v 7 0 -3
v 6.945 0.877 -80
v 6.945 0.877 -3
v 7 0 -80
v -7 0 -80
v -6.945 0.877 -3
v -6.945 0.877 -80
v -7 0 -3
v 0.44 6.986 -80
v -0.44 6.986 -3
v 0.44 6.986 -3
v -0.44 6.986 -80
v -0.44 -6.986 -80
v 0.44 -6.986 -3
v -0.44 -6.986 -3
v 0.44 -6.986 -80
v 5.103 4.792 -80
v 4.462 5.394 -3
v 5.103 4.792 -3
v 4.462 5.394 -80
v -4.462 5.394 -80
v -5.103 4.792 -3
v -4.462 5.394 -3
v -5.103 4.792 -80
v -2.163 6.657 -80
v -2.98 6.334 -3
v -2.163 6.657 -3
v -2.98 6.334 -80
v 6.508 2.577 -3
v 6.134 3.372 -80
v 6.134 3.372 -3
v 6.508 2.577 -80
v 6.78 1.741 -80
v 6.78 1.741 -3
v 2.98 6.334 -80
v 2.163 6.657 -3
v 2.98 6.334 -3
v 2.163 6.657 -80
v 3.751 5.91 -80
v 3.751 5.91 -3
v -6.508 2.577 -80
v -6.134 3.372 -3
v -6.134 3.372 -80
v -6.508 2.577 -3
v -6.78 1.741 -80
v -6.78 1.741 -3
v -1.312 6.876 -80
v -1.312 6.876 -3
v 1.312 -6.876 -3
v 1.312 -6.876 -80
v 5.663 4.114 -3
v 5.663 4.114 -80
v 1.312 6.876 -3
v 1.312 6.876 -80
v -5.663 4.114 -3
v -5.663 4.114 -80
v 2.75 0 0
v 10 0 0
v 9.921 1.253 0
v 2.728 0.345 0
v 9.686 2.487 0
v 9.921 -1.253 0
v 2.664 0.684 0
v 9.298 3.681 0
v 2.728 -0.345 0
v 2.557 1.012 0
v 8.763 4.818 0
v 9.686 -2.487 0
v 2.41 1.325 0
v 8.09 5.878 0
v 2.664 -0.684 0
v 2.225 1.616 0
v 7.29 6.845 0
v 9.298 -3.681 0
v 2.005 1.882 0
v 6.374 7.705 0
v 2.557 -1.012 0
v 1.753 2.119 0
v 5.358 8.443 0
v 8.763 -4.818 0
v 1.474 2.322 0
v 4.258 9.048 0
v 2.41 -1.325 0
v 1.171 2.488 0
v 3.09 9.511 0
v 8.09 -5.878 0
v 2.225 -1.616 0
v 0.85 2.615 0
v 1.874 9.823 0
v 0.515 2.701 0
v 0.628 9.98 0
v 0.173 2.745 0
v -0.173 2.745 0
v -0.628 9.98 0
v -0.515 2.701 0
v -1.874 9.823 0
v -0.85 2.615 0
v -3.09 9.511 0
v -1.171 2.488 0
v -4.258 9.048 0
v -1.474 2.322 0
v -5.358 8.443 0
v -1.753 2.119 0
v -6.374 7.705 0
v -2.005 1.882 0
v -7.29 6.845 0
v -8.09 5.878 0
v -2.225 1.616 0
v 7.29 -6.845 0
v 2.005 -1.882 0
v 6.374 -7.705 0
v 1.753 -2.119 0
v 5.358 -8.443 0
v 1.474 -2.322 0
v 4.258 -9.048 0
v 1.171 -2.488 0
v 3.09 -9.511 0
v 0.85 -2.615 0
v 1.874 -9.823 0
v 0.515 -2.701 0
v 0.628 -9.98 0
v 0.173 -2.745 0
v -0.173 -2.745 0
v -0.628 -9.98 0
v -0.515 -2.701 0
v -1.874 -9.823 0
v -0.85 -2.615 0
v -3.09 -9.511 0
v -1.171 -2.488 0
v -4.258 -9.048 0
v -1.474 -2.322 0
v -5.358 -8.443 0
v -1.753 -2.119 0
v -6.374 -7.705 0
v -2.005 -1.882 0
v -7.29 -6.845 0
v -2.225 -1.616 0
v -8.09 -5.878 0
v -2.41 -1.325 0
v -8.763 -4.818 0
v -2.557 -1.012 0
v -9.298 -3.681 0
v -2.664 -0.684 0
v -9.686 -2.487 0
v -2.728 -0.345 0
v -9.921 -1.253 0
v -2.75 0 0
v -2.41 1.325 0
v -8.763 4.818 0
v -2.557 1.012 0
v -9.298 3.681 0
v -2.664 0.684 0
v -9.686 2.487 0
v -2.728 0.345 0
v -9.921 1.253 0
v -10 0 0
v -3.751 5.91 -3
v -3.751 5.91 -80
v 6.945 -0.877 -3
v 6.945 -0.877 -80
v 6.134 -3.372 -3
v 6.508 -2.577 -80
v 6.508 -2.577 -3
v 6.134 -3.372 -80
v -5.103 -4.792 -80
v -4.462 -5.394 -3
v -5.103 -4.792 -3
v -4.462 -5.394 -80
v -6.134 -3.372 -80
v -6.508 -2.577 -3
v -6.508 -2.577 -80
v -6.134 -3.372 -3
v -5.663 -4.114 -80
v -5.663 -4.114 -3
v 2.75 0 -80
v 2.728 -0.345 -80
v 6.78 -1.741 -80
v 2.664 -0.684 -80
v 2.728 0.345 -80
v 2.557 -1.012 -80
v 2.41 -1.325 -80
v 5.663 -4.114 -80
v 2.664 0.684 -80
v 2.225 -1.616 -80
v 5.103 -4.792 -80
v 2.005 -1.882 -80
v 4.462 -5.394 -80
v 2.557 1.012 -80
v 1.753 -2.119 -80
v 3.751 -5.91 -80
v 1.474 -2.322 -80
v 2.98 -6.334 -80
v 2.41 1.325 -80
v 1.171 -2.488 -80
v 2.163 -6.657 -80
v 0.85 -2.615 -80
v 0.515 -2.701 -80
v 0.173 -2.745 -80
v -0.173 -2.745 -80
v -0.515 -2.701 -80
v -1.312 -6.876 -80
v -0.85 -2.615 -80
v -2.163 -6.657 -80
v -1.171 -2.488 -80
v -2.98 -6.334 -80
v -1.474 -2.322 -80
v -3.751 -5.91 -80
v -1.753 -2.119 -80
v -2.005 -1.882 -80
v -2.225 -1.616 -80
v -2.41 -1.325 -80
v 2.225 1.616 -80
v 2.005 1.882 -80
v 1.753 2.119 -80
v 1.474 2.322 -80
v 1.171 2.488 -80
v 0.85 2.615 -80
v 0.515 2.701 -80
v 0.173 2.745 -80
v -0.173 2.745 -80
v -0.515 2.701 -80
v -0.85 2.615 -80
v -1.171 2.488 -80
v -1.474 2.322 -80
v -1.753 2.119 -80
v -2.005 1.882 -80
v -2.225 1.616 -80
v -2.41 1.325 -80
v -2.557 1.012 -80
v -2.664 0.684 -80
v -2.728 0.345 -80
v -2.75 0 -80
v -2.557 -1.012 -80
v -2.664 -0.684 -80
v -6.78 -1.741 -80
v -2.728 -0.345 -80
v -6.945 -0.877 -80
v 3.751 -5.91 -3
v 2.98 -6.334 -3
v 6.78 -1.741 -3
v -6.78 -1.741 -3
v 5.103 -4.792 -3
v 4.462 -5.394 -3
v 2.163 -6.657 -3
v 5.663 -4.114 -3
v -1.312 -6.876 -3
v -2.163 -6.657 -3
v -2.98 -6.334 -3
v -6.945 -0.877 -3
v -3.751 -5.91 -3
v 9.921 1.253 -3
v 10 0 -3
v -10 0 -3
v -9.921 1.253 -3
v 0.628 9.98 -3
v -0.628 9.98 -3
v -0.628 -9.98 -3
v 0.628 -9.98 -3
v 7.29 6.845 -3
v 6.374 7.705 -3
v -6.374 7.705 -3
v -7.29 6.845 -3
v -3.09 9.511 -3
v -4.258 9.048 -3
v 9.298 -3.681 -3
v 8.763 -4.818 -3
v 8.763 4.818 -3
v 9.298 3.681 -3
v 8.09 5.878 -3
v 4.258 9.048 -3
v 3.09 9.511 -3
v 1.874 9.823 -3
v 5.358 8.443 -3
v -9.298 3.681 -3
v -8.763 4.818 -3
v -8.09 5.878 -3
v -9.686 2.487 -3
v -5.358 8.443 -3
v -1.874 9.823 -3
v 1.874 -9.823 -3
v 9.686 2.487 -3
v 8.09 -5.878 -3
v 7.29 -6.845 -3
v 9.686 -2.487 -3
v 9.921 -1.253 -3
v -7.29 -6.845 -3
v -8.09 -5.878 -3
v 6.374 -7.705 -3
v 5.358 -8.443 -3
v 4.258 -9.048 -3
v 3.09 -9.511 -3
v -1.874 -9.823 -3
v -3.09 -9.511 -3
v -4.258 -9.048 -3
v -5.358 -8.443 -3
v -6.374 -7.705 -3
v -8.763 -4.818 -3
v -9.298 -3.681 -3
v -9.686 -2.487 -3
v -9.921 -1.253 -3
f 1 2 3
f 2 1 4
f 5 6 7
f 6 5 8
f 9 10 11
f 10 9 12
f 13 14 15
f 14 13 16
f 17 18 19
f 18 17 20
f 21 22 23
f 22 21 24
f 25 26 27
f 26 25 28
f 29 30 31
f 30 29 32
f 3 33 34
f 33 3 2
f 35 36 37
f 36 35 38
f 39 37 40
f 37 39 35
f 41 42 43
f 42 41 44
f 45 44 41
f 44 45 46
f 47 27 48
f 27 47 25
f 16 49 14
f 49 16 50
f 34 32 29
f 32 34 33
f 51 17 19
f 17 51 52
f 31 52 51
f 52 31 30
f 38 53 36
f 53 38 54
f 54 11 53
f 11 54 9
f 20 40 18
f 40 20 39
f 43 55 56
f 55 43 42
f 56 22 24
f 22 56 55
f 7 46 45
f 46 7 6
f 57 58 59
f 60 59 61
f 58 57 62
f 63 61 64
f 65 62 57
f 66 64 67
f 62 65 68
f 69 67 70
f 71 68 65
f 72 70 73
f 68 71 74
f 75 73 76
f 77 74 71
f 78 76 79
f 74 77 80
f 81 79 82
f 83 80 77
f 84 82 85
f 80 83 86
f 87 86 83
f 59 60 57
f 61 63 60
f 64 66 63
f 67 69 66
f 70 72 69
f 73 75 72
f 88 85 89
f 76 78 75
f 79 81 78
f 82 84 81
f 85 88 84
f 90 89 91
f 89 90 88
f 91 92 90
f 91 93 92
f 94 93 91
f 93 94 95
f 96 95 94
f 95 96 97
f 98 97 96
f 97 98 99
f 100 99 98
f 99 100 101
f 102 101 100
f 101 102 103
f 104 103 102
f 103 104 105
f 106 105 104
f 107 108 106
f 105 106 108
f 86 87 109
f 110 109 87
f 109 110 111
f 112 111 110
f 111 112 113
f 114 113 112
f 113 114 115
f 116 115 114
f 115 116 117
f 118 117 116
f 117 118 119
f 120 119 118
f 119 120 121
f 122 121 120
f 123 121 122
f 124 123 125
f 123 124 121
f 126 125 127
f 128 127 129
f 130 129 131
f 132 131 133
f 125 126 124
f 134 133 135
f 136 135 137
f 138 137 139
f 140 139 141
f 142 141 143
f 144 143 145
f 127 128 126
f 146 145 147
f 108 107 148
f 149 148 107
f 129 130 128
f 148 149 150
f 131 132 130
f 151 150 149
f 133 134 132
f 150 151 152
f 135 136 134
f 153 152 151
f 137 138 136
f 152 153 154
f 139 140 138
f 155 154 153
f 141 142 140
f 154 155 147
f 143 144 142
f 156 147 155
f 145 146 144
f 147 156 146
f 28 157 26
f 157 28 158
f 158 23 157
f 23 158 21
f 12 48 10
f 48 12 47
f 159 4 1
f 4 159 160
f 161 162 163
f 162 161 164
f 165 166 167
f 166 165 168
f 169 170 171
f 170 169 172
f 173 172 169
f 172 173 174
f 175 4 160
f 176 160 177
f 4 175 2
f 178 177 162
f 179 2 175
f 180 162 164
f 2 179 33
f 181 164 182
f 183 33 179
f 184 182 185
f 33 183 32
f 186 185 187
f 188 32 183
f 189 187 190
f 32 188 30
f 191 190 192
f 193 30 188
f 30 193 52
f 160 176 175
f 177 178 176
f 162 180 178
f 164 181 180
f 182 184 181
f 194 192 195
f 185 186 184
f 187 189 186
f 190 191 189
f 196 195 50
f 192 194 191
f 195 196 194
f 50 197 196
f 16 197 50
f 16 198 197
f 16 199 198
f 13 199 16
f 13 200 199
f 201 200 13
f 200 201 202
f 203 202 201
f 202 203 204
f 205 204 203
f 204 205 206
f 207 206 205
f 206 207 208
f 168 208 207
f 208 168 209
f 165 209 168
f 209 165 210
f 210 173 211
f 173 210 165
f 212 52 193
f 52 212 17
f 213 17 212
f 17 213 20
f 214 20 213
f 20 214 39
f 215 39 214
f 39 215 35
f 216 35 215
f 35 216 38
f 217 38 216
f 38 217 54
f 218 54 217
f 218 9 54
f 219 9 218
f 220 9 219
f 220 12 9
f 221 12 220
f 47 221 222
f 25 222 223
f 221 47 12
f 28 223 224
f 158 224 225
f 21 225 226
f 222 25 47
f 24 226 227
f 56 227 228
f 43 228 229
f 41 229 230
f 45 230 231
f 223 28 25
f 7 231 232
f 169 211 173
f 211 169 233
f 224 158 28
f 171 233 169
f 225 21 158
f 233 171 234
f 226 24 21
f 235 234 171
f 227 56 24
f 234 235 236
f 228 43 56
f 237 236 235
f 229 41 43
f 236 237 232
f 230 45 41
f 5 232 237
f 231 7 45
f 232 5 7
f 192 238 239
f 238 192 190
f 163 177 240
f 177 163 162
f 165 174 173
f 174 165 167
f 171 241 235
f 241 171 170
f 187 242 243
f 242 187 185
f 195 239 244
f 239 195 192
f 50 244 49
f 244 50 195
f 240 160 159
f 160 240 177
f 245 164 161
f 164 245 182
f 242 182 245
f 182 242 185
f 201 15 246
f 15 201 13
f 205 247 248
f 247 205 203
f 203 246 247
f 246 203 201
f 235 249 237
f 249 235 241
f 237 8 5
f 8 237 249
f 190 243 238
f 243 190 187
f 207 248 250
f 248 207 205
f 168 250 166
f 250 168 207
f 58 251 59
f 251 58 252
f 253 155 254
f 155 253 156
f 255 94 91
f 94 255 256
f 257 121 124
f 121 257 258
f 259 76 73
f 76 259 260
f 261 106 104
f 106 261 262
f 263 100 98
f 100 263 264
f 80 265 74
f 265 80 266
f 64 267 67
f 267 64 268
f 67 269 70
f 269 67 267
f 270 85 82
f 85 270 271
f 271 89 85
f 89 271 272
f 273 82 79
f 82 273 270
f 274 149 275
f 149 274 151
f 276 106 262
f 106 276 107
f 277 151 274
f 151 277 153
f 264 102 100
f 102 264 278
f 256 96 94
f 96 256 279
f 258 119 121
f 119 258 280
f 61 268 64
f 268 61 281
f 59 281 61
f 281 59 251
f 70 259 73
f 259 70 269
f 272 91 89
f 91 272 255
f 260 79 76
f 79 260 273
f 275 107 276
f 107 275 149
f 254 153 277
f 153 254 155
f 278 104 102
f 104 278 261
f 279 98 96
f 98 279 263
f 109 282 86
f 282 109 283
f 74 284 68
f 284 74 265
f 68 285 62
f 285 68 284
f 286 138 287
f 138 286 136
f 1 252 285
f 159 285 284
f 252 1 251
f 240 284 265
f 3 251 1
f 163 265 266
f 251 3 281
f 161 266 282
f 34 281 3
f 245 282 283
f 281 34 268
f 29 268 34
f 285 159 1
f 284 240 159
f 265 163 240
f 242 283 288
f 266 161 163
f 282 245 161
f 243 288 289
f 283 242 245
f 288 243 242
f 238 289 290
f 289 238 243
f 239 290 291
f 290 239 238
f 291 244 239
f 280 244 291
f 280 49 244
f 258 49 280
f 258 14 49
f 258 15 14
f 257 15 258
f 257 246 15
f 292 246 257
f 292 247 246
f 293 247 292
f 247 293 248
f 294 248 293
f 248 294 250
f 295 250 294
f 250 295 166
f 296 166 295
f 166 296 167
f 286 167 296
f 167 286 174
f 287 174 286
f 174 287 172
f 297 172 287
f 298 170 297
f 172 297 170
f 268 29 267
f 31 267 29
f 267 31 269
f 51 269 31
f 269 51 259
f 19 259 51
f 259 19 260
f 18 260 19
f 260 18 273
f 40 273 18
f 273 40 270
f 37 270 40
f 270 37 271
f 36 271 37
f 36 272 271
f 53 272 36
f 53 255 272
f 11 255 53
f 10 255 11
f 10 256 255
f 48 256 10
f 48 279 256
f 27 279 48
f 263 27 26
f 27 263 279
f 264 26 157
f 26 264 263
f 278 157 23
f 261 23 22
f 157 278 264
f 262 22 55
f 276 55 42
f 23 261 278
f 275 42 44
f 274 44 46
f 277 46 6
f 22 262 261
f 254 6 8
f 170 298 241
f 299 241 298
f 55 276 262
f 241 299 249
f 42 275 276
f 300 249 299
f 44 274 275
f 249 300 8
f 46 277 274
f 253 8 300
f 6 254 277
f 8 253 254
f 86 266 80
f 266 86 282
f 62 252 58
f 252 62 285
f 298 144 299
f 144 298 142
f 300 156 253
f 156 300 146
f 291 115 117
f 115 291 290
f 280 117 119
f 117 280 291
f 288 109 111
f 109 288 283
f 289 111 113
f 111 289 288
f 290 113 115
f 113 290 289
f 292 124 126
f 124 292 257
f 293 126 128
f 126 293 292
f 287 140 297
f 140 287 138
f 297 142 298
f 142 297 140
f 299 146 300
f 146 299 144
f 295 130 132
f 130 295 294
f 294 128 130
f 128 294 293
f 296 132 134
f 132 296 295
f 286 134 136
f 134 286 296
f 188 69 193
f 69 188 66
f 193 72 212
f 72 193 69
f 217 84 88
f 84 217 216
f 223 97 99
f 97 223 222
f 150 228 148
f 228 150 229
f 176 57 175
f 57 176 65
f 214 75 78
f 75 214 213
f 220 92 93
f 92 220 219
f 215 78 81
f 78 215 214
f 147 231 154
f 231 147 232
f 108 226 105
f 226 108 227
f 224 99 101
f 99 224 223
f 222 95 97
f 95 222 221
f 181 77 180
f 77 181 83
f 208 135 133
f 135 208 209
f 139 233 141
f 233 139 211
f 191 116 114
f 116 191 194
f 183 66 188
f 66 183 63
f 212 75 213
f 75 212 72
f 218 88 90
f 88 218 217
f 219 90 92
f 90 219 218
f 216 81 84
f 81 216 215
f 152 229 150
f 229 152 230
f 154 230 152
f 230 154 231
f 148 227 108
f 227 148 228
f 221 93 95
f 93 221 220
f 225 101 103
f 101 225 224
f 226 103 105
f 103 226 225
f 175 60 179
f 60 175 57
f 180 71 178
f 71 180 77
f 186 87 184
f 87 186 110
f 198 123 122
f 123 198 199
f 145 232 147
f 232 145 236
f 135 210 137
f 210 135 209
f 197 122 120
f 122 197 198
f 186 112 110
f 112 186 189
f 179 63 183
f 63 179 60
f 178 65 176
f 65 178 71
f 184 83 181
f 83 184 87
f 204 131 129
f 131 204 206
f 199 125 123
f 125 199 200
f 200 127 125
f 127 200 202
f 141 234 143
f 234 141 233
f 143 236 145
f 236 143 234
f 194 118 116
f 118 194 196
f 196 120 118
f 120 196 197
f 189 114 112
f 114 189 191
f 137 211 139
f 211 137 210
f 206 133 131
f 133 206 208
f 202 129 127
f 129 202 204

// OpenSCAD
$fn = 50;


difference() {
	union() {
		translate(v = [0, 0, -80.0000000000]) {
			cylinder(h = 80, r = 7.0000000000);
		}
		translate(v = [0, 0, -3.0000000000]) {
			cylinder(h = 3, r = 10.0000000000);
		}
	}
	union() {
		#translate(v = [0, 0, -80]) {
			cylinder(h = 80, r = 2.7500000000);
		}
	}
}
